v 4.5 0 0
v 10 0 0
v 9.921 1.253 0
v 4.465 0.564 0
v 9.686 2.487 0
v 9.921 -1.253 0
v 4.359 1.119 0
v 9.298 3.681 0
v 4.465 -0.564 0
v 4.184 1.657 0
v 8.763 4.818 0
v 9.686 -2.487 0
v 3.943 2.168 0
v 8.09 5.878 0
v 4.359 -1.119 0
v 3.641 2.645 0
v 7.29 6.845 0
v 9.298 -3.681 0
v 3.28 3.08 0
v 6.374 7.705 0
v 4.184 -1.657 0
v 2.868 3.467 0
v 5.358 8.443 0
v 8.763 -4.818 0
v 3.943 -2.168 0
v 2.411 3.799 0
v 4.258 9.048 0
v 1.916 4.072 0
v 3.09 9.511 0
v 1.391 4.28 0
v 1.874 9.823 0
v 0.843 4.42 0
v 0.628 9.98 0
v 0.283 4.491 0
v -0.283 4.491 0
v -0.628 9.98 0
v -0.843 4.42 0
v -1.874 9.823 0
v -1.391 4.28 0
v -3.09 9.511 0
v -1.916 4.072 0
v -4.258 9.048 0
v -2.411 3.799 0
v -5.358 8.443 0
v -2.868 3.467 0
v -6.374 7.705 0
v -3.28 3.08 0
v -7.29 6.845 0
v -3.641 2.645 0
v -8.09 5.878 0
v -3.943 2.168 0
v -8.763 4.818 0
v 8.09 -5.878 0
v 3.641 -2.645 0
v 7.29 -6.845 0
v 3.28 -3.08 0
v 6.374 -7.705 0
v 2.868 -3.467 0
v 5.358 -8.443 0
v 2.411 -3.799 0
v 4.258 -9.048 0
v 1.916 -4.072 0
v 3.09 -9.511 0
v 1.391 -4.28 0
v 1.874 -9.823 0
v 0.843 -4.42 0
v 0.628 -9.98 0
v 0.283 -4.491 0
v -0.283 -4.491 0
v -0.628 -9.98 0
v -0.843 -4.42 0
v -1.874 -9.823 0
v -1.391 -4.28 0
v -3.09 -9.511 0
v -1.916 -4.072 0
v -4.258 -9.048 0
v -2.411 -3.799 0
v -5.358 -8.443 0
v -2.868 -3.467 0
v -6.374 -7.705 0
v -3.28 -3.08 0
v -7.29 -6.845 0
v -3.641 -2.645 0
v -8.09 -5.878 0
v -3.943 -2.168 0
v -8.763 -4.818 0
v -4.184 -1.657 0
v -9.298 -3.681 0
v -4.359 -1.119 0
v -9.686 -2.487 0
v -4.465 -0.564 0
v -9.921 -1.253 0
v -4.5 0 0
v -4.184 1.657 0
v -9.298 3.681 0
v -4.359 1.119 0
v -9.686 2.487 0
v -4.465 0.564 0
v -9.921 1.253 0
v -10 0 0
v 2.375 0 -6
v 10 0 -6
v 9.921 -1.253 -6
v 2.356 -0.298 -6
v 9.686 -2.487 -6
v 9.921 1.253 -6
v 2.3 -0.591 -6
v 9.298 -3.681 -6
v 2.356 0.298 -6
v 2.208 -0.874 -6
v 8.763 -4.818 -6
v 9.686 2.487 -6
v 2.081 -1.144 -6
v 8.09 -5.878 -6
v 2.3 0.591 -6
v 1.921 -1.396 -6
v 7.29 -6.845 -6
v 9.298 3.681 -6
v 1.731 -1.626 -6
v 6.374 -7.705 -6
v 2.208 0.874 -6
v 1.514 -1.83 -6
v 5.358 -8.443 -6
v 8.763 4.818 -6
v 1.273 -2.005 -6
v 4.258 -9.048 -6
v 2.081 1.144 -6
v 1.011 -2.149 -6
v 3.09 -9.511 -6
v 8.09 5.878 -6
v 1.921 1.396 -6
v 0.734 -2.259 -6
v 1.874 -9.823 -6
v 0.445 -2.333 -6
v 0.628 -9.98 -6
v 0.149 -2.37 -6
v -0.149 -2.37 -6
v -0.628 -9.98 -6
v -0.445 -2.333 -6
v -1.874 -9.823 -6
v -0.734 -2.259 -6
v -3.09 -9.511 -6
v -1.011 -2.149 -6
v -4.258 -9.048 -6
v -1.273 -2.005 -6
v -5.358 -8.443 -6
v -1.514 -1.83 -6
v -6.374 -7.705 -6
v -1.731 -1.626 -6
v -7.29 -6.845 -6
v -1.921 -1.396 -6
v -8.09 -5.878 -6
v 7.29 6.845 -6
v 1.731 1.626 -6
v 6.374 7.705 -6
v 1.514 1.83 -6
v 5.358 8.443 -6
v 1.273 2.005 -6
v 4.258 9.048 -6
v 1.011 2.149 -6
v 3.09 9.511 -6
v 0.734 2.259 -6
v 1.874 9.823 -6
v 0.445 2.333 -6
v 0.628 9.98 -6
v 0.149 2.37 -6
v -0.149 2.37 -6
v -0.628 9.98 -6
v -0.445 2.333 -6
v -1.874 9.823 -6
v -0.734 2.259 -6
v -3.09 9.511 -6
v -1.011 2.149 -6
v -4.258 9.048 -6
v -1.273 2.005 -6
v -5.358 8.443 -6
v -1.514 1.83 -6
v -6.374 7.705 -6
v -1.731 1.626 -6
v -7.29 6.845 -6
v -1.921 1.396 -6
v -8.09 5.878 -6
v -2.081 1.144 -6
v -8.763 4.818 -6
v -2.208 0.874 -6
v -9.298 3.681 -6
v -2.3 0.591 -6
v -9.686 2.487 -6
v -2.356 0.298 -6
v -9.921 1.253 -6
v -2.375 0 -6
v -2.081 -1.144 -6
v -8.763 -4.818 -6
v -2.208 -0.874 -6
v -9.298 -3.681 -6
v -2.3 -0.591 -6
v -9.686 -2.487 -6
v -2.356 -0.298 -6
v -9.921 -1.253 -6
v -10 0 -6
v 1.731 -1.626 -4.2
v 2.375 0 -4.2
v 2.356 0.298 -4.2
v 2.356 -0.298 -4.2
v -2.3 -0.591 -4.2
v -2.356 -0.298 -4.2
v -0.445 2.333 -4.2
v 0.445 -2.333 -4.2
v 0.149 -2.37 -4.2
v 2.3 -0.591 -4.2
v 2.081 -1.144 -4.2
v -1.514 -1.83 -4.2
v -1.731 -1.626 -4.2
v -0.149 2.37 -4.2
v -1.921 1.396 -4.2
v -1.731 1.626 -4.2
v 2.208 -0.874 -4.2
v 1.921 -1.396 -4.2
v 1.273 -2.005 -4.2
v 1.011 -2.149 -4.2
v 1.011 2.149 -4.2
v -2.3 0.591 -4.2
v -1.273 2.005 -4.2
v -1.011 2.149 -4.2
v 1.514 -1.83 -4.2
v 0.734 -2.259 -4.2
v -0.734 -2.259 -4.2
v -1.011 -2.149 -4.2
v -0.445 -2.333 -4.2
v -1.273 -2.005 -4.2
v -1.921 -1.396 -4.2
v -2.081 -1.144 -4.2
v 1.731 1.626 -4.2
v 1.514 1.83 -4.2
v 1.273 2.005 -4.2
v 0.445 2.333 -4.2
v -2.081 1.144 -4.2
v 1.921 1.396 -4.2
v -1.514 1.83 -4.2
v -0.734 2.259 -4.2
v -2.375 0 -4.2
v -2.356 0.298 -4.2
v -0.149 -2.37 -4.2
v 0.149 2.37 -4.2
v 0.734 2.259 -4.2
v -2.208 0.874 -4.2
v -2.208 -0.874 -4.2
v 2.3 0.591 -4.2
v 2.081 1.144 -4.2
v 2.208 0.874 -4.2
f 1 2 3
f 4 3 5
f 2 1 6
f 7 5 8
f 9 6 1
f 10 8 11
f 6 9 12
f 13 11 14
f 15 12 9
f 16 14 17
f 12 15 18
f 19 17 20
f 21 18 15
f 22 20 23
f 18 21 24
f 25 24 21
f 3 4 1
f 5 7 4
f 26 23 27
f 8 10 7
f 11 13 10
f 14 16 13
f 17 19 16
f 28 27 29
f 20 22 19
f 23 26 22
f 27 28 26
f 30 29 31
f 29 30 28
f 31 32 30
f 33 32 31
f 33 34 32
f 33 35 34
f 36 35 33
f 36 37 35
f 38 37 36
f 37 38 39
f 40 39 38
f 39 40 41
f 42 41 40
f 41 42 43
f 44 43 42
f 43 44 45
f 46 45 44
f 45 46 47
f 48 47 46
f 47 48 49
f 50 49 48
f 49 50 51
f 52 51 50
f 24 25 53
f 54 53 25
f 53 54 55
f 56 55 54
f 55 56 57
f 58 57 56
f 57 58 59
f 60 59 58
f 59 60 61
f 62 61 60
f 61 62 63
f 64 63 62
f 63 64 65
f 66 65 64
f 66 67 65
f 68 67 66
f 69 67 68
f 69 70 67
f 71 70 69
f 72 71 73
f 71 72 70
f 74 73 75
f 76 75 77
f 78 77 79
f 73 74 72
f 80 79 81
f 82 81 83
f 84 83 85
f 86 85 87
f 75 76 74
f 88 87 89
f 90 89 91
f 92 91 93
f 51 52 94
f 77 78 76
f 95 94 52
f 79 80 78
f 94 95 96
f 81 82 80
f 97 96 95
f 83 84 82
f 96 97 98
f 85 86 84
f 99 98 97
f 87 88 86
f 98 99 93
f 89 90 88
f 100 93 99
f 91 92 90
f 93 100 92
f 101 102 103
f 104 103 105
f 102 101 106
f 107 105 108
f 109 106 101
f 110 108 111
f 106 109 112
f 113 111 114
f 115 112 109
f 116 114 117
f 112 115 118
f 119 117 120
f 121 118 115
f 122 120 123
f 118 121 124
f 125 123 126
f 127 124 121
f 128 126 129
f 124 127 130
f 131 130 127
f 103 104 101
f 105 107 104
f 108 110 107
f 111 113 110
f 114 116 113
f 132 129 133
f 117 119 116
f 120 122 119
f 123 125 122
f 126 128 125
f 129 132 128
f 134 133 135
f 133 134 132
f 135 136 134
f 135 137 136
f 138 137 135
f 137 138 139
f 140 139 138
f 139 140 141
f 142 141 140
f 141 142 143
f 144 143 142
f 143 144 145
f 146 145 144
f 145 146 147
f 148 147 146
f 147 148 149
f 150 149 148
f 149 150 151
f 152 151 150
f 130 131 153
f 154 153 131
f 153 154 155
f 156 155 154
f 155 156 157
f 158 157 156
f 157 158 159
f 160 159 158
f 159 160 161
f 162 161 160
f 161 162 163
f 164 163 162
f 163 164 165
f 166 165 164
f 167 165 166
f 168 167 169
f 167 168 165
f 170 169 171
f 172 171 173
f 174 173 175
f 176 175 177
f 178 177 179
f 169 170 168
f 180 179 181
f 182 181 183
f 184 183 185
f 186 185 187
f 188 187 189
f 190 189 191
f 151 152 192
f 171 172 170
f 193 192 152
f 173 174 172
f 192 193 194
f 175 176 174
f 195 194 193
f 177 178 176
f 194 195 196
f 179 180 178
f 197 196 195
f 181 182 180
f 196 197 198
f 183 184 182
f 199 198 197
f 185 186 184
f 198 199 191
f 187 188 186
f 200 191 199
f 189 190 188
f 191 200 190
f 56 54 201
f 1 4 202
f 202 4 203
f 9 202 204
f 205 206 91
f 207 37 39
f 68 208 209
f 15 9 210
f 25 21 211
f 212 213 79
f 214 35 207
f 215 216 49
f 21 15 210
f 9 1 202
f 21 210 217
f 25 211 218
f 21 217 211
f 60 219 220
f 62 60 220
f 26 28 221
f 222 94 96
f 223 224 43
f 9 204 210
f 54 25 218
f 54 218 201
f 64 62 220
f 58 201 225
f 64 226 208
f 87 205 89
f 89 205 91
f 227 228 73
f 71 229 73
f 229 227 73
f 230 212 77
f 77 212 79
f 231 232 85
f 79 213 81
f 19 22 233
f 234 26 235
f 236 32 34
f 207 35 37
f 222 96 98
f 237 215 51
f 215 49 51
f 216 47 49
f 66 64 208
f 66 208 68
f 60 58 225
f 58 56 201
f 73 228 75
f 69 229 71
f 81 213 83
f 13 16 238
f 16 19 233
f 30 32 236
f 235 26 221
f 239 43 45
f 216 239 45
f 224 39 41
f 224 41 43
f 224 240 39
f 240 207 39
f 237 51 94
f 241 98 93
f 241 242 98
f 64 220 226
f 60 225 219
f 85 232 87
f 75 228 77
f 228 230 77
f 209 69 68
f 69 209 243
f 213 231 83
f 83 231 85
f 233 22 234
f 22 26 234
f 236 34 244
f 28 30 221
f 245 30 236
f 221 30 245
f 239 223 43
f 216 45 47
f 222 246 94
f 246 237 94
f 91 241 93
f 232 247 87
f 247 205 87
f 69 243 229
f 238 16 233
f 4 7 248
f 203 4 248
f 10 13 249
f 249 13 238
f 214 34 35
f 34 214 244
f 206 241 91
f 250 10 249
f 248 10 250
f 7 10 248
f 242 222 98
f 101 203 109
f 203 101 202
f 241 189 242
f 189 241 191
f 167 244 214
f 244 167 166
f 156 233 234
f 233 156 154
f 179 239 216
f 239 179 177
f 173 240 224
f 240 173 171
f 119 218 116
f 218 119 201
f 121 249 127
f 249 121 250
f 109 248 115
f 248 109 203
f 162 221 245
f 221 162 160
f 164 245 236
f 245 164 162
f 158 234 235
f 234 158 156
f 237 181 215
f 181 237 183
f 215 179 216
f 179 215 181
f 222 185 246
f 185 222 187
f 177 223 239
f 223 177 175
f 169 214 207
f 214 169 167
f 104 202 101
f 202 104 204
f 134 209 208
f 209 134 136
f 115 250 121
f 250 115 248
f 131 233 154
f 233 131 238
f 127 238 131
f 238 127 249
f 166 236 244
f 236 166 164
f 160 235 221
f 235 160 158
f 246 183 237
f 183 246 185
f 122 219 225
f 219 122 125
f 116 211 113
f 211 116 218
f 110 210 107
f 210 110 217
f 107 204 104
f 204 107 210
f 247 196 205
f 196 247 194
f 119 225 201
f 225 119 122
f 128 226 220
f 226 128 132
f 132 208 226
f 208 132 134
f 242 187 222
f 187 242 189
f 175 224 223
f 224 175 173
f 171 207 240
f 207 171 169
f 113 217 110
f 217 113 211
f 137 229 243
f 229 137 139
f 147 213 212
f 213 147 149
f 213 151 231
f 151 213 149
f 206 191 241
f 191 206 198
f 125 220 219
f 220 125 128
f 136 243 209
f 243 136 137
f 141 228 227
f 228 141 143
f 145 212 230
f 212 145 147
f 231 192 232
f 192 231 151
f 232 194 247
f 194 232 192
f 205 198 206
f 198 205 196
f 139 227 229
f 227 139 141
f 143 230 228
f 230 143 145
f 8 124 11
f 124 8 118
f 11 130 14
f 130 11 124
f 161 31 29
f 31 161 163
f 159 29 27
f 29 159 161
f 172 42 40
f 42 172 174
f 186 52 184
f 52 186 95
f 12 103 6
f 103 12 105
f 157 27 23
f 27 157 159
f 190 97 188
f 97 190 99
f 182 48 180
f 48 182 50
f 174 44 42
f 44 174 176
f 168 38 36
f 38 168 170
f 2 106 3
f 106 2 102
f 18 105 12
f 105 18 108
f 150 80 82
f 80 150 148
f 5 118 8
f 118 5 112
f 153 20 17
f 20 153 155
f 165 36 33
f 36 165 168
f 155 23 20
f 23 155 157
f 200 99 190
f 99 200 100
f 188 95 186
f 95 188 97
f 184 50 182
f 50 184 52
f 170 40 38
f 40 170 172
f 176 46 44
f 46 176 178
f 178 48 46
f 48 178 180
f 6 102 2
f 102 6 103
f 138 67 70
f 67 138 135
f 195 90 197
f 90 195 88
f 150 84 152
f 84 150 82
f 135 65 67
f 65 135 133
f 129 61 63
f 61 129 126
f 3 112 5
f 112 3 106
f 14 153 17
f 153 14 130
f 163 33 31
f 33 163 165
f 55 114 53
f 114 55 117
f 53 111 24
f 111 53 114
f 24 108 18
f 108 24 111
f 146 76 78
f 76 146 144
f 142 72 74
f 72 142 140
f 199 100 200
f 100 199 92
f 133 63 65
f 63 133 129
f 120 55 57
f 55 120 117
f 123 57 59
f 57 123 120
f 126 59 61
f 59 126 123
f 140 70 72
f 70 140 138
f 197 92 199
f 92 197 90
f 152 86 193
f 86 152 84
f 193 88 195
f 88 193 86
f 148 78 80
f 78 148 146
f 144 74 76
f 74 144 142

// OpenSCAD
$fn = 50;


difference() {
	union() {
		translate(v = [0, 0, -6.0000000000]) {
			cylinder(h = 6, r = 10.0000000000);
		}
	}
	union() {
		translate(v = [0, 0, 0]) {
			rotate(a = [0, 0, 0]) {
				difference() {
					union() {
						#translate(v = [0, 0, -6.0000000000]) {
							cylinder(h = 6, r = 2.2500000000);
						}
						#translate(v = [0, 0, -4.2000000000]) {
							cylinder(h = 4.2000000000, r = 10.0000000000, r1 = 2.3750000000, r2 = 4.5000000000);
						}
						#translate(v = [0, 0, -6.0000000000]) {
							cylinder(h = 6, r = 2.3750000000);
						}
						#translate(v = [0, 0, -6.0000000000]) {
							cylinder(h = 6, r = 2.2500000000);
						}
					}
					union();
				}
			}
		}
	}
}
